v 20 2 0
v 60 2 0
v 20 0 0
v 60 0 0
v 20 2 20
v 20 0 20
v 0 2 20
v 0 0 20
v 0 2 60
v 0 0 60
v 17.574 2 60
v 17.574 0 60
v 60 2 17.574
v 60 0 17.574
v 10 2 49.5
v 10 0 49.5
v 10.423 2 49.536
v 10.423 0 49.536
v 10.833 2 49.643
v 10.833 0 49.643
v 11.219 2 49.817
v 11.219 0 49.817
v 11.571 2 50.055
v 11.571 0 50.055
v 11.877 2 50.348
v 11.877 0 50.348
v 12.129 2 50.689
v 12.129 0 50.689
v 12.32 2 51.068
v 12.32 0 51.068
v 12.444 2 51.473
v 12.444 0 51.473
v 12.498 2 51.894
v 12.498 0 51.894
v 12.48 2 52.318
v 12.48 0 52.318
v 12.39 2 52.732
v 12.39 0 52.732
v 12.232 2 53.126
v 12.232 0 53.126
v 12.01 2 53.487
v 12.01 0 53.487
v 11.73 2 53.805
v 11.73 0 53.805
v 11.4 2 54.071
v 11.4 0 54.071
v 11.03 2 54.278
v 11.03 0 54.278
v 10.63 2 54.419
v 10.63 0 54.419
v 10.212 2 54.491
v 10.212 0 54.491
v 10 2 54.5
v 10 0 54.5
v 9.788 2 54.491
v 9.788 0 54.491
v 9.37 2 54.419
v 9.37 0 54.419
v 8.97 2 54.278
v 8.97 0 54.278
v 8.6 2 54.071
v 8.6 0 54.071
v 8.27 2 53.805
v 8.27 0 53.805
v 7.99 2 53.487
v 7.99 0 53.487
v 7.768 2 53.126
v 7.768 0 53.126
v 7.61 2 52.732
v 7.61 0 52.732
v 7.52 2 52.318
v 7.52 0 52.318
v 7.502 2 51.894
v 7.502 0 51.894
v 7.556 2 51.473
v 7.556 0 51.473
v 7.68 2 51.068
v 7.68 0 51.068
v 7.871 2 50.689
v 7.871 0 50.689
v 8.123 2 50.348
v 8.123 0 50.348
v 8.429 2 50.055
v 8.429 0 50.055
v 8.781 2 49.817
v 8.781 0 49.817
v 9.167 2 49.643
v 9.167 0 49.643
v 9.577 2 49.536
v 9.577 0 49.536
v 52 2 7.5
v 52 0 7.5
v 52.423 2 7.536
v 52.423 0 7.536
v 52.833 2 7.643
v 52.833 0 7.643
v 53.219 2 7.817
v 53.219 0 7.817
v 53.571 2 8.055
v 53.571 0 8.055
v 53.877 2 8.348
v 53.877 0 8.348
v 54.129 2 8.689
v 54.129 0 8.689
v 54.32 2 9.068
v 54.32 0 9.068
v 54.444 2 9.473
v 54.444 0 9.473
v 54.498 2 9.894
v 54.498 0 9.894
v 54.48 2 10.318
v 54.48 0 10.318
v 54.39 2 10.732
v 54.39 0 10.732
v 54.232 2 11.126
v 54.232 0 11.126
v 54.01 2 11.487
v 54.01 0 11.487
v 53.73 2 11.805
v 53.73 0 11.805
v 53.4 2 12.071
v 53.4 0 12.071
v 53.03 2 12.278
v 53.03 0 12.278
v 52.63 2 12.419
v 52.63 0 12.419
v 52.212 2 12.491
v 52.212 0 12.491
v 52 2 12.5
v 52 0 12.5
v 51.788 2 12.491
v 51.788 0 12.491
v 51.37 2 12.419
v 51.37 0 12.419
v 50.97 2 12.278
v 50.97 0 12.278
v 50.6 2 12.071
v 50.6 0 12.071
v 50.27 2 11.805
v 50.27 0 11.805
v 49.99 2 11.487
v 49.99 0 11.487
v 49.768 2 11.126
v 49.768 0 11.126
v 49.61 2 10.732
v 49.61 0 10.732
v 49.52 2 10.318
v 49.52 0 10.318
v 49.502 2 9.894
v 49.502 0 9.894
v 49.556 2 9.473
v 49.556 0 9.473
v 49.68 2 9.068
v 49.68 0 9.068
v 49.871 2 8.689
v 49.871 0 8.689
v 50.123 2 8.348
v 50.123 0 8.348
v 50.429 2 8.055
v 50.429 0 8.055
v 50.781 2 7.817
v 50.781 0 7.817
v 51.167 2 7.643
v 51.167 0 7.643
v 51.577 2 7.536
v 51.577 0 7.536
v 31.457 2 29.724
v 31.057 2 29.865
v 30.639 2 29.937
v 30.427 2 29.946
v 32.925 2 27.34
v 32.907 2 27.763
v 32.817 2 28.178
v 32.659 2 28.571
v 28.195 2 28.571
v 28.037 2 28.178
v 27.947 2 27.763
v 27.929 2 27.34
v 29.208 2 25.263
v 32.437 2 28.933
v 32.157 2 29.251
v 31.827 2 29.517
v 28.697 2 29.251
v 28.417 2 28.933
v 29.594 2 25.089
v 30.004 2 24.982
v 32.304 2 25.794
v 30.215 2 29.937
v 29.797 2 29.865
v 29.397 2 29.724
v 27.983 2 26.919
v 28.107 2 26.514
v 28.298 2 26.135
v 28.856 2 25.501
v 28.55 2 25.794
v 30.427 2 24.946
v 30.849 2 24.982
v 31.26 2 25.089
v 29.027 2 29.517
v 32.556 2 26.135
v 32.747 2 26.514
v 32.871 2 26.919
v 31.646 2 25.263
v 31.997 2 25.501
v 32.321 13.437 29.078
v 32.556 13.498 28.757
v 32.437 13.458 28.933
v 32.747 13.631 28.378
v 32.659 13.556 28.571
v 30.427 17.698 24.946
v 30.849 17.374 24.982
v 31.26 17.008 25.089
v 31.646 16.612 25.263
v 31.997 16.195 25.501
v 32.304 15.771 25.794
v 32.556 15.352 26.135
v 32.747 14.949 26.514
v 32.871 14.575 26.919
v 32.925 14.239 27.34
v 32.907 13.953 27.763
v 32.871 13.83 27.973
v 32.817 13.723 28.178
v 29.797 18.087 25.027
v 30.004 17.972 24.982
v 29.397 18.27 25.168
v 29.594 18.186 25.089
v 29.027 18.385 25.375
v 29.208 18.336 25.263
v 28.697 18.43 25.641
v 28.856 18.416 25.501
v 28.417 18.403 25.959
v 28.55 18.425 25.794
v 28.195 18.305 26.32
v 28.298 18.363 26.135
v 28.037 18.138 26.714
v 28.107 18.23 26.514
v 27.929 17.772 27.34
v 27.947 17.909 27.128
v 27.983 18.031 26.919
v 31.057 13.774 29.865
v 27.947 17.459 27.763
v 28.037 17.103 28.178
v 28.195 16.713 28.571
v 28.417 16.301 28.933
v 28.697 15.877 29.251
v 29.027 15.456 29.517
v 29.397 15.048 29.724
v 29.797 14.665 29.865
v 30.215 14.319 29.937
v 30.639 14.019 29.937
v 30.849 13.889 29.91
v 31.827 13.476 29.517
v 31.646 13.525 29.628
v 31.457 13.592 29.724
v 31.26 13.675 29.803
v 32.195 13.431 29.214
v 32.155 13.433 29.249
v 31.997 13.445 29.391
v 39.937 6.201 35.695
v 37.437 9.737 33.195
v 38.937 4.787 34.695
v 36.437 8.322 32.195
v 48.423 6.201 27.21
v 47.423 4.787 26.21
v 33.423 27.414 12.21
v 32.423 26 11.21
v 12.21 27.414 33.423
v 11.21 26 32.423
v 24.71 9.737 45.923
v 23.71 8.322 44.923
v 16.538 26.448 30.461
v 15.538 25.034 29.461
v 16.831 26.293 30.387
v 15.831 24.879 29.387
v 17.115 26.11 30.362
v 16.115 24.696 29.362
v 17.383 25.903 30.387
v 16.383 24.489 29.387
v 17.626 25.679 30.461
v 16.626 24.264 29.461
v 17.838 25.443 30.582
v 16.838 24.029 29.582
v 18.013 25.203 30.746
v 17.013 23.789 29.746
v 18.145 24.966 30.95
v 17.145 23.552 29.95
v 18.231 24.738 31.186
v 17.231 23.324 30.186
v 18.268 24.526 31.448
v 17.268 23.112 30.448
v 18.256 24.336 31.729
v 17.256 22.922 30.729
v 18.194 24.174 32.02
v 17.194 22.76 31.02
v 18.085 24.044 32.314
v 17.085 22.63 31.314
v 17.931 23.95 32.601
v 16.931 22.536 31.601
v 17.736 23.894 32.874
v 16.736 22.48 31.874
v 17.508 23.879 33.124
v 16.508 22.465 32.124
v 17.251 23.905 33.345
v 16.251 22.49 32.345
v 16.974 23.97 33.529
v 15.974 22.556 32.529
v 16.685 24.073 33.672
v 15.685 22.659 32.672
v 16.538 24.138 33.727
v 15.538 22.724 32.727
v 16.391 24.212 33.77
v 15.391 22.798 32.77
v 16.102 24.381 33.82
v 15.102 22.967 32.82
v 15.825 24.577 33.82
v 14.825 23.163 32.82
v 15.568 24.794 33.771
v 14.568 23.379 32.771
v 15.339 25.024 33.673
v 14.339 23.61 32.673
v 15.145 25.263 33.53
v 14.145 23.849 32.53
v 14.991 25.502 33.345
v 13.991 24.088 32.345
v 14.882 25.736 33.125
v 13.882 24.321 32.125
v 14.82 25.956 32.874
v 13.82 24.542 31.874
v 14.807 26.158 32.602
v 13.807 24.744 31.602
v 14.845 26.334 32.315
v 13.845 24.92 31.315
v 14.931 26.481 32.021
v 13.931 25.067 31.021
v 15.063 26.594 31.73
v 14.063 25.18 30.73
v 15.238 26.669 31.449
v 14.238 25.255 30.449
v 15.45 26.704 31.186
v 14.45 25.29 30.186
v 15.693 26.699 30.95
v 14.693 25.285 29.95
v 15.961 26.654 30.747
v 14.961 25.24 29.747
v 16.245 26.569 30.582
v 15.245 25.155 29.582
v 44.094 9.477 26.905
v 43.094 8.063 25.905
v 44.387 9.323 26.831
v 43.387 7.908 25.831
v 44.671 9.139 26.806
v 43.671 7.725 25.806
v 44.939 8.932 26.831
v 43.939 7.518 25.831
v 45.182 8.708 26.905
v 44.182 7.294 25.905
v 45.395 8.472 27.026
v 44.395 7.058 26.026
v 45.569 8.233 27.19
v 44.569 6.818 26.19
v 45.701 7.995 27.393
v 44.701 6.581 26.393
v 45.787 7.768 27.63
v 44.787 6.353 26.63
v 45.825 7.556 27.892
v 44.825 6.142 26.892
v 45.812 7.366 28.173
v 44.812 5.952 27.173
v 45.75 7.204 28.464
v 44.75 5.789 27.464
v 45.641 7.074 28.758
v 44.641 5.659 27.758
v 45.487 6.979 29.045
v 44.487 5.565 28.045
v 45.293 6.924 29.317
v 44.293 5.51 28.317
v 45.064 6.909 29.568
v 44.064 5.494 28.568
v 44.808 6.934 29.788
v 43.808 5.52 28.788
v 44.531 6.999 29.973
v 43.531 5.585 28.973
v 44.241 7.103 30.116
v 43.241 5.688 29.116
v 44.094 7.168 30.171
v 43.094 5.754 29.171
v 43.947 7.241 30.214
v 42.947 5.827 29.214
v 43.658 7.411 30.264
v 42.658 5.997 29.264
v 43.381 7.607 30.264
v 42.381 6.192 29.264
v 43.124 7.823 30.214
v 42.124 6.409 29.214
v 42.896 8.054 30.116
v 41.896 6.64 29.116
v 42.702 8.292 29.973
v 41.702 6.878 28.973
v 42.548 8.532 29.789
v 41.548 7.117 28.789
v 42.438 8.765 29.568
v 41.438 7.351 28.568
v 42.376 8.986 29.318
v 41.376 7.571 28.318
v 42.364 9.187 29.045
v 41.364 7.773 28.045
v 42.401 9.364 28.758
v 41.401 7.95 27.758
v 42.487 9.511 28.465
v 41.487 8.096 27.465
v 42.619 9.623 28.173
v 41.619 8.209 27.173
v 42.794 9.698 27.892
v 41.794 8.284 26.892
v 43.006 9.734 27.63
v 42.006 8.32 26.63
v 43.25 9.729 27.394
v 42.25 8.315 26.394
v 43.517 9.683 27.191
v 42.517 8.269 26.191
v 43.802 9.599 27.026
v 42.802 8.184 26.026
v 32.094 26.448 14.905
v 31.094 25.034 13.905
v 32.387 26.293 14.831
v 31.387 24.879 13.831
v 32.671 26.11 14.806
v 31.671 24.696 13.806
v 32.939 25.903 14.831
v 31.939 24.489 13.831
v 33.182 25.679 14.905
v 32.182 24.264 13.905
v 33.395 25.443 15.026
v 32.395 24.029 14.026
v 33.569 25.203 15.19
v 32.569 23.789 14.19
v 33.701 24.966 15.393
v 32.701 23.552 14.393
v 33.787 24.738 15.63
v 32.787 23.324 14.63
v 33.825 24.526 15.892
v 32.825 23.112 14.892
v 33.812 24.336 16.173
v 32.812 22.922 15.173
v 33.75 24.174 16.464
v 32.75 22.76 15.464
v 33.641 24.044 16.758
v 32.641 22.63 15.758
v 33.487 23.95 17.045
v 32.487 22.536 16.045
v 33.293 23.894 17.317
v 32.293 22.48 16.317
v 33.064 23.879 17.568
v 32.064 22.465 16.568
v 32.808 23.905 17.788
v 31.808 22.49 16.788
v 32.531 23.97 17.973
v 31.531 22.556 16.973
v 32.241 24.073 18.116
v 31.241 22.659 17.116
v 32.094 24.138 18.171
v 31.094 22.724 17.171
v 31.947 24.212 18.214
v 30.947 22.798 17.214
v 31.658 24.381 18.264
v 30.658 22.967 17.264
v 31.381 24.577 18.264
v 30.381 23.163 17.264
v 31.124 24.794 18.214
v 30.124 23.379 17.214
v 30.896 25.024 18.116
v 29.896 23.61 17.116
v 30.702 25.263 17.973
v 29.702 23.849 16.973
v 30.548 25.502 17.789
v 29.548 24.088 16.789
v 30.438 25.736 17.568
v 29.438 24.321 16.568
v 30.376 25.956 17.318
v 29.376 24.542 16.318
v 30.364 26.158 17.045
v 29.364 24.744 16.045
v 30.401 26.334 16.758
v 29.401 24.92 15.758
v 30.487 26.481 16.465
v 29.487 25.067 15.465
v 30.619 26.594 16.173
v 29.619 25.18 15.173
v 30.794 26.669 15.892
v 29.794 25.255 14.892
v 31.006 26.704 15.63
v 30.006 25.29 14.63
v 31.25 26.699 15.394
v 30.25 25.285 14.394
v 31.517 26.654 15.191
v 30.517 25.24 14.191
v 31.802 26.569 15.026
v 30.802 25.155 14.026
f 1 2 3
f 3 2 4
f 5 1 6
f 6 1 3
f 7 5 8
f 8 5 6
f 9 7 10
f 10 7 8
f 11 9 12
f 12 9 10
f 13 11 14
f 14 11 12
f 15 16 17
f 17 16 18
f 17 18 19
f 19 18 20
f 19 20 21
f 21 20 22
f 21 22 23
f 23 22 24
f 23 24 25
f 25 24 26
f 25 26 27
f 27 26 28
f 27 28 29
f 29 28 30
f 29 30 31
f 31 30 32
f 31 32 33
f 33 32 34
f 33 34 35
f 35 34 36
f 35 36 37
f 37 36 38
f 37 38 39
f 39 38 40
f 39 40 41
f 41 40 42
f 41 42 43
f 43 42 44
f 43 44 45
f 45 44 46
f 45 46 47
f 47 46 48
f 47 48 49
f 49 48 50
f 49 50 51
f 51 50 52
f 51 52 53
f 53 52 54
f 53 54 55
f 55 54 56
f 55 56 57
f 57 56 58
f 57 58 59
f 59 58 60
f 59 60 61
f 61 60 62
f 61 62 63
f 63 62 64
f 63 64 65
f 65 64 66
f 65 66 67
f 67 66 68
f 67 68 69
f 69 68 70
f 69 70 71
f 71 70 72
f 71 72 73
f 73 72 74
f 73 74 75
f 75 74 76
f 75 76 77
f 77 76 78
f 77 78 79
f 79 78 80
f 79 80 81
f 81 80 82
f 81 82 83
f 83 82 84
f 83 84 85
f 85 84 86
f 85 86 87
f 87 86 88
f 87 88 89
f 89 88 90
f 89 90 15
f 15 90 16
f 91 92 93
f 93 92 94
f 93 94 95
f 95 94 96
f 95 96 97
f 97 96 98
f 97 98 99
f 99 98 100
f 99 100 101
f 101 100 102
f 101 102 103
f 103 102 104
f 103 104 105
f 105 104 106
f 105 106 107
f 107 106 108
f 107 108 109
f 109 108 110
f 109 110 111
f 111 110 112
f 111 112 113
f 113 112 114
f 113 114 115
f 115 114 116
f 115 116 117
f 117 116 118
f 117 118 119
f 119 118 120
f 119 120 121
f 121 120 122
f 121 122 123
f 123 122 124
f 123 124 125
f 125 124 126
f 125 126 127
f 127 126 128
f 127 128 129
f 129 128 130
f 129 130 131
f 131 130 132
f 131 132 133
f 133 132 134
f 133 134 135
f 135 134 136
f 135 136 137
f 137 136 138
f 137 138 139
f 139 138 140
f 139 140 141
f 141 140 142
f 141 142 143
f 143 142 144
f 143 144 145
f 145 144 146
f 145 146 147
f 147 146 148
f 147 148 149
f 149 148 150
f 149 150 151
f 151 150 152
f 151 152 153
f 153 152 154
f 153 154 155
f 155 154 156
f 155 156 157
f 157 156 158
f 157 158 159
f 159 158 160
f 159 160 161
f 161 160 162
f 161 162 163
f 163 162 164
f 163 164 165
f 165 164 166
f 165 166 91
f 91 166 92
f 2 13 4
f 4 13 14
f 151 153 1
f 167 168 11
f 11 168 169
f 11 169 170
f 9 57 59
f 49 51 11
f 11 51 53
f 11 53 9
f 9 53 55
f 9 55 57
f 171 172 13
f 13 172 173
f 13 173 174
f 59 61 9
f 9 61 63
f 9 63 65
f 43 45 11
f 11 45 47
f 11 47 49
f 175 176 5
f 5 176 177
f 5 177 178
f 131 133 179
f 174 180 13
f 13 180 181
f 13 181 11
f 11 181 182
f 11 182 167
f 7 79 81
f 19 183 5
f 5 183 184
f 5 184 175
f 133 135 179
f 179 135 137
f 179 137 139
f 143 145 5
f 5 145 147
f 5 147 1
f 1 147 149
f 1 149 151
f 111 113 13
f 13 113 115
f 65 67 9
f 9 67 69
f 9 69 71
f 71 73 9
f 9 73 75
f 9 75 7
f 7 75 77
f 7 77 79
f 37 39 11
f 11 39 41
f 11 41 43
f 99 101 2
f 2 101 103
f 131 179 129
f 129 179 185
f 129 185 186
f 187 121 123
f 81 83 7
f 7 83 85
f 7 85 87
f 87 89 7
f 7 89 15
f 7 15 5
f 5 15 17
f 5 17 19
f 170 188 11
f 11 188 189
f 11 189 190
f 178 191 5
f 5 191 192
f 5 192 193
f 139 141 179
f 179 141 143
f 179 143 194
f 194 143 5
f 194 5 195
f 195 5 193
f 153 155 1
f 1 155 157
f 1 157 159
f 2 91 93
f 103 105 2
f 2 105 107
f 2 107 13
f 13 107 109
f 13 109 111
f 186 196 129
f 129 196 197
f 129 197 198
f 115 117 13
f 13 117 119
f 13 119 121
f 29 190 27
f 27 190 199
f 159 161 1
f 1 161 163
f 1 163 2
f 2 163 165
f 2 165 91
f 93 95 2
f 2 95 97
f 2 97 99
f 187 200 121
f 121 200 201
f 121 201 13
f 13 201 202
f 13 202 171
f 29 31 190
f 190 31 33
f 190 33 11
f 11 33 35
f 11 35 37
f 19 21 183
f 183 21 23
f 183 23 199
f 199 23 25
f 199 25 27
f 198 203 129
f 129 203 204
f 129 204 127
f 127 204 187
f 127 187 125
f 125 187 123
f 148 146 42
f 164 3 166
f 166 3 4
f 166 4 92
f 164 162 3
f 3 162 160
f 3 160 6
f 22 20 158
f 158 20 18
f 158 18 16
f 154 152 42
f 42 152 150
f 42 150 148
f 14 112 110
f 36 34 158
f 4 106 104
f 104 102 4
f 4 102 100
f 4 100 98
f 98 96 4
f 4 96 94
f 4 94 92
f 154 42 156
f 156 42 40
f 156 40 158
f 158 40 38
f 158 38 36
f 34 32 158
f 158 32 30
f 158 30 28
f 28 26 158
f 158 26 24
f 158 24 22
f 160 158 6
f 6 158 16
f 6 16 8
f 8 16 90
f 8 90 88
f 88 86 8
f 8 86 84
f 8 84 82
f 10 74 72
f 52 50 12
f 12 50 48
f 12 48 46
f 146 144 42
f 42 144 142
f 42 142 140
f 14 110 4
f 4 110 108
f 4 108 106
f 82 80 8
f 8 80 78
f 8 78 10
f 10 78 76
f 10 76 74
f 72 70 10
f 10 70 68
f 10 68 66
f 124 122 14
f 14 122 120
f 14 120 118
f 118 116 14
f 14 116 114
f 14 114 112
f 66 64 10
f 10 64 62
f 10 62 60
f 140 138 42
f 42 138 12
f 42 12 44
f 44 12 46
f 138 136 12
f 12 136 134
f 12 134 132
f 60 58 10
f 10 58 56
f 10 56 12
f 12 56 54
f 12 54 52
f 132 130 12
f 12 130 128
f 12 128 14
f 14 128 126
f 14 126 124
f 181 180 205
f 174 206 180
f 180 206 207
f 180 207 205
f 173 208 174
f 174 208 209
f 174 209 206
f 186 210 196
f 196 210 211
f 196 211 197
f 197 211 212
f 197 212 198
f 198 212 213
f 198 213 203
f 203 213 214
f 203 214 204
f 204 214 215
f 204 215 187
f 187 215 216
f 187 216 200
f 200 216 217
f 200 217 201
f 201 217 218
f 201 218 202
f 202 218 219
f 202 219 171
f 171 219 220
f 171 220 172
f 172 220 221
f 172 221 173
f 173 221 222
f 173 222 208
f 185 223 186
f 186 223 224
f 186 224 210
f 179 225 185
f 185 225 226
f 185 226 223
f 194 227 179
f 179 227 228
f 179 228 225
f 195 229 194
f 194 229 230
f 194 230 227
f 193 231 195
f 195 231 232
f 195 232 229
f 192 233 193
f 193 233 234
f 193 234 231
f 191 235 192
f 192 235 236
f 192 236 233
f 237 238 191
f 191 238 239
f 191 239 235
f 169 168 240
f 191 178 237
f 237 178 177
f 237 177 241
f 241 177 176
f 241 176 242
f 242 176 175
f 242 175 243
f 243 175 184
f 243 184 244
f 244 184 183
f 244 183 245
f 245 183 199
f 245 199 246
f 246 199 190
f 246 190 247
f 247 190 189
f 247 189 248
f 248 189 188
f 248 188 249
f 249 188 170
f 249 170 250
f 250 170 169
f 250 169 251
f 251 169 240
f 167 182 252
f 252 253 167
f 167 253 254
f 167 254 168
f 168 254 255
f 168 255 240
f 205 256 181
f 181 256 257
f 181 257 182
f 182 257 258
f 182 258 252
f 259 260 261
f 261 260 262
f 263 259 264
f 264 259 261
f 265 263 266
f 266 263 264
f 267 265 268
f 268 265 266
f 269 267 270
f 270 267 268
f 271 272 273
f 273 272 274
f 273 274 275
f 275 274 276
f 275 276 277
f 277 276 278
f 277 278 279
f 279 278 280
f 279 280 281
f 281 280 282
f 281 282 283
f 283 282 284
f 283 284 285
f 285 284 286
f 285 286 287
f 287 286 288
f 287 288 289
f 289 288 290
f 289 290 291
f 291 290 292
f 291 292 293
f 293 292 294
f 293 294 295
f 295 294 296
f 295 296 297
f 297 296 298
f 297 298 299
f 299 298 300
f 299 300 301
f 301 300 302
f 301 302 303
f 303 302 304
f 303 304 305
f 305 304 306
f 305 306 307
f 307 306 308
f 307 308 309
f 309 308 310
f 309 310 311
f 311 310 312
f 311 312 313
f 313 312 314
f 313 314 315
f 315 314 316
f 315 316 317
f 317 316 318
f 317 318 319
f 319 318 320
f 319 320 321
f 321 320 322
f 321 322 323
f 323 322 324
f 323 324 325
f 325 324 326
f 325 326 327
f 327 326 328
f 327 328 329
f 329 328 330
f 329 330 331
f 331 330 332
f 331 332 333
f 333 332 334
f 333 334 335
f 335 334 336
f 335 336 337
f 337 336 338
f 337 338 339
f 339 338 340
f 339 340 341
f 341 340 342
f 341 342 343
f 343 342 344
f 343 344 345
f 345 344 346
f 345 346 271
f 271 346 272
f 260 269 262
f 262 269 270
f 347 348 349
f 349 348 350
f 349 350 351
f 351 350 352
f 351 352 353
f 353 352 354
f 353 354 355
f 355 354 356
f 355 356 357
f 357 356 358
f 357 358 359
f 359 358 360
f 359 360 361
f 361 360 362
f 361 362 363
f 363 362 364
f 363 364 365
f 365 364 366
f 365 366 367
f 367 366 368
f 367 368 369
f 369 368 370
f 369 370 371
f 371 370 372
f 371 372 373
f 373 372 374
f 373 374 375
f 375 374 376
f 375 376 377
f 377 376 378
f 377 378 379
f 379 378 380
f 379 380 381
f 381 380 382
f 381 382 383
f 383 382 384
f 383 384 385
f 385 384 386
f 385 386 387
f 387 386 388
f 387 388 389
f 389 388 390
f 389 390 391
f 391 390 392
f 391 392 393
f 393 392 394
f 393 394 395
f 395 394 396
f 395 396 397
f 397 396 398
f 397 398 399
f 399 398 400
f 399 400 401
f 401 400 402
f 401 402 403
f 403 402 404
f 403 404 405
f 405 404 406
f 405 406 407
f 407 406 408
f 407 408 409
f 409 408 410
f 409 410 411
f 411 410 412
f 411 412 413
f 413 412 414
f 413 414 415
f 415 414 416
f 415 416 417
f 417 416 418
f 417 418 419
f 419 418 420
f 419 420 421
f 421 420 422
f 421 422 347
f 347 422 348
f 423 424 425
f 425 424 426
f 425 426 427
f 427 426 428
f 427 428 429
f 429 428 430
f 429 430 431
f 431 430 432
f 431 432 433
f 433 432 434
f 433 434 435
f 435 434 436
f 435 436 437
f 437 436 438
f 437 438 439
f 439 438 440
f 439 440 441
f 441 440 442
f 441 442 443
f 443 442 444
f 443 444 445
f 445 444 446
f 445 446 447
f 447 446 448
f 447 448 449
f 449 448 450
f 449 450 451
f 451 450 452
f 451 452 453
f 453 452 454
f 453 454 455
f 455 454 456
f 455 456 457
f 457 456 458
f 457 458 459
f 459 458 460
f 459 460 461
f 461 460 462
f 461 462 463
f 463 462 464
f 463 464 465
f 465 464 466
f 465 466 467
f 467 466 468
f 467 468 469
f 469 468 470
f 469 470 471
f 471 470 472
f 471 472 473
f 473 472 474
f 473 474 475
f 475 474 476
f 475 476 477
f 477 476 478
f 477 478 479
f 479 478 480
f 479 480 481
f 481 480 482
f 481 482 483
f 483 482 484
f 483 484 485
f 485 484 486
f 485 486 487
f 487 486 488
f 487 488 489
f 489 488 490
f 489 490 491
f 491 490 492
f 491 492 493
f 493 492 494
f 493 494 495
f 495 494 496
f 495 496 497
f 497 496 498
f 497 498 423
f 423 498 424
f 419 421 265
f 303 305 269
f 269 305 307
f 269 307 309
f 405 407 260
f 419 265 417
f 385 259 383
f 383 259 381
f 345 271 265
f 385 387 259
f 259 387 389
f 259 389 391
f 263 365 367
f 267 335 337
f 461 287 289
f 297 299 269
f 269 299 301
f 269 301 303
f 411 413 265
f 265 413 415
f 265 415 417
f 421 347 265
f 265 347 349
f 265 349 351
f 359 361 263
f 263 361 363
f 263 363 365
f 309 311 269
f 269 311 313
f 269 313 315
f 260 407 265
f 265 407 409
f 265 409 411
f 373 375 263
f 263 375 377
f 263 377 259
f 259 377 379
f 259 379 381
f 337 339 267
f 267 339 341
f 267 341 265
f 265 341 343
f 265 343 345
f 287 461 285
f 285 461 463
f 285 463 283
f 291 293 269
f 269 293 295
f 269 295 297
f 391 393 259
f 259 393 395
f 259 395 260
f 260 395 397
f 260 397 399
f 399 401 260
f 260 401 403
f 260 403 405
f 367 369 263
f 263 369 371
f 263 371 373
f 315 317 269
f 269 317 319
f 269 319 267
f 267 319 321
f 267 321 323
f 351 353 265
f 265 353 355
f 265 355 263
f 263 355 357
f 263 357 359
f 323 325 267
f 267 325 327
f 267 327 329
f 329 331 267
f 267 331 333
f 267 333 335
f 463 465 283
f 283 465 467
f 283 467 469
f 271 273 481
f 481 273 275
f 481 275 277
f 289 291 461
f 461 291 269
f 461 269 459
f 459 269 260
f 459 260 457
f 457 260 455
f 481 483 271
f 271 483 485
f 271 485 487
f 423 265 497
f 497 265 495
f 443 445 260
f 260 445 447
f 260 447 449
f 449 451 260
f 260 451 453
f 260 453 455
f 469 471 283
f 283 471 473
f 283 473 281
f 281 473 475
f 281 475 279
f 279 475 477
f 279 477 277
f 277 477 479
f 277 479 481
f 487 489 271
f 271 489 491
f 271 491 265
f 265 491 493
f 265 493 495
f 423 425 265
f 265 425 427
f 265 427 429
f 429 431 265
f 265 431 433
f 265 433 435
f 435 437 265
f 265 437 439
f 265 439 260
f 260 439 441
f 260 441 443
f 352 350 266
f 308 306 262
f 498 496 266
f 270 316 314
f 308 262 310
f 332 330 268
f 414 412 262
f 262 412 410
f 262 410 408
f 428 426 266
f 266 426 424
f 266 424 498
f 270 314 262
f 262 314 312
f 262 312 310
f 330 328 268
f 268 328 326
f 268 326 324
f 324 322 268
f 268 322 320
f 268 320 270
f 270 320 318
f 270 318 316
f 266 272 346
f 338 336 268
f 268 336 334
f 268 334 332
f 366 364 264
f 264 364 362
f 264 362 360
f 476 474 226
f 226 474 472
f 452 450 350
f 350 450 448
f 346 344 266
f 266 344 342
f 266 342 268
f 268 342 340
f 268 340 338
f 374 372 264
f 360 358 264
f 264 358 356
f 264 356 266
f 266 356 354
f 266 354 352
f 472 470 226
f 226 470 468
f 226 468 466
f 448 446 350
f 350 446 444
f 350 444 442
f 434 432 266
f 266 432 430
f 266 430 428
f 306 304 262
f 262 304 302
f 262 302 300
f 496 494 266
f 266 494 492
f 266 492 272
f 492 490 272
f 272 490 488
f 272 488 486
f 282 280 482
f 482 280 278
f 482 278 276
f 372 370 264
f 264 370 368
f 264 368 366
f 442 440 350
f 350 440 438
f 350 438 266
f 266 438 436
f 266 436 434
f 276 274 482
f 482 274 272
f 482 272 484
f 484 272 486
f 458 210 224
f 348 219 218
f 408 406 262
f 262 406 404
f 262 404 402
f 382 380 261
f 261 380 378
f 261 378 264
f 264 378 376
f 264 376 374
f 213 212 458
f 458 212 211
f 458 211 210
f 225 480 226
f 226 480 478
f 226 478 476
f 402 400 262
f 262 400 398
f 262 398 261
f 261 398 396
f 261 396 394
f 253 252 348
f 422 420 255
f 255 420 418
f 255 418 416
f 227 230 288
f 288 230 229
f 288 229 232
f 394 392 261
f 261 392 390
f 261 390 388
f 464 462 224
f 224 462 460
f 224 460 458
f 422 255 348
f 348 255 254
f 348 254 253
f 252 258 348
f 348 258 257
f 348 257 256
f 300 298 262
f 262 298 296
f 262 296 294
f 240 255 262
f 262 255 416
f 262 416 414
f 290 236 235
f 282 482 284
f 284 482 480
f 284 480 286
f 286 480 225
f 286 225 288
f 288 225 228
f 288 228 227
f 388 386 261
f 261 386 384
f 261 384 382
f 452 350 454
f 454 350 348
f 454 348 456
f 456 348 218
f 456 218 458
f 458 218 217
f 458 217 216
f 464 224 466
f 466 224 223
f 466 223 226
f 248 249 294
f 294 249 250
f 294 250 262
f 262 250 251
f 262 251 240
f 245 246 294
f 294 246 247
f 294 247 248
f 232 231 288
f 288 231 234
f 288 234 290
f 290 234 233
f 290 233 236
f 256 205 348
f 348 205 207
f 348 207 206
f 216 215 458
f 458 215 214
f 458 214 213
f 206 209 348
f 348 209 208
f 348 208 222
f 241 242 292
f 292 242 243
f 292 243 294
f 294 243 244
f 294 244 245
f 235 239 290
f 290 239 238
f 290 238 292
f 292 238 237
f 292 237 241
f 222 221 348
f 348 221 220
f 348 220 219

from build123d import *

# Parameters (mm, degrees)
SKETCH_1_R      = 2.5
EXTRUDE_1_DEPTH = 2
SKETCH_2_R      = 2
EXTRUDE_3_DEPTH = 2
EXTRUDE_4_REACH = 90.577
SKETCH_4_R      = 2.5


with BuildPart() as part:
    # 草图1 → 凸台-拉伸1 (new body)
    with BuildSketch(Plane(origin=(0, 0, 0), x_dir=(1, 0, 0), z_dir=(0, 1, 0))):
        Polygon((17.573593129, -60), (60, -17.573593129), (60, 0), (20, 0), (20, -20), (0, -20), (0, -60), align=None)
        with Locations(Location((10, -52, 0), (0, 0, 270))):
            Circle(SKETCH_1_R, mode=Mode.SUBTRACT)
        with Locations(Location((52, -10, 0), (0, 0, 270))):
            Circle(SKETCH_1_R, mode=Mode.SUBTRACT)
    extrude(amount=EXTRUDE_1_DEPTH)



with BuildPart() as body_2:
    # 草图2 → 凸台-拉伸3 (new body)
    with BuildSketch(Plane(origin=(20.100505063, 28.426406871, 20.100505063), x_dir=(-0.7071067811865476, 0, 0.7071067811865476), z_dir=(0.5000000000000009, 0.7071067811865465, 0.5000000000000009))):
        Polygon((-3, 33.431239936), (-15, 33.431239936), (-15, 3.431239936), (15, 3.431239936), (15, 28.431239936), (11, 28.431239936), (-3, 28.431239936), align=None)
        with Locations(Location((-11, 6.431239936, 0), (0, 0, 54.735610317))):
            Circle(SKETCH_2_R, mode=Mode.SUBTRACT)
        with Locations(Location((11, 6.431239936, 0), (0, 0, 54.735610317))):
            Circle(SKETCH_2_R, mode=Mode.SUBTRACT)
        with Locations(Location((-11, 30.431239936, 0), (0, 0, 54.735610317))):
            Circle(SKETCH_2_R, mode=Mode.SUBTRACT)
    extrude(amount=EXTRUDE_3_DEPTH)


with BuildPart() as part_1:
    add(part.part)

    add(body_2.part)  # 凸台-拉伸4 merges body 2
    # 凸台-拉伸4: up to this plane
    extrude_4_end = Plane(origin=(20.100505063, 28.426406871, 20.100505063), z_dir=(0.5000000000000009, 0.7071067811865464, 0.5000000000000009))
    # 草图4 → 凸台-拉伸4 (add, up to the surface)
    with BuildSketch(Plane(origin=(0, 2, 0), x_dir=(1, 0, 0), z_dir=(0, 1, 0)), mode=Mode.PRIVATE) as extrude_4_sk1:
        with Locations(Location((30.42692979, -27.445922357, 0), (0, 0, 315))):
            Circle(SKETCH_4_R)
    extrude_4_tool1 = split(extrude(extrude_4_sk1.sketch, amount=EXTRUDE_4_REACH, mode=Mode.PRIVATE), bisect_by=extrude_4_end, keep=Keep.BOTH, mode=Mode.PRIVATE)
    add(extrude_4_tool1.solids().sort_by_distance((30.42693, 2, 27.445922))[0])


solid = part_1.part
